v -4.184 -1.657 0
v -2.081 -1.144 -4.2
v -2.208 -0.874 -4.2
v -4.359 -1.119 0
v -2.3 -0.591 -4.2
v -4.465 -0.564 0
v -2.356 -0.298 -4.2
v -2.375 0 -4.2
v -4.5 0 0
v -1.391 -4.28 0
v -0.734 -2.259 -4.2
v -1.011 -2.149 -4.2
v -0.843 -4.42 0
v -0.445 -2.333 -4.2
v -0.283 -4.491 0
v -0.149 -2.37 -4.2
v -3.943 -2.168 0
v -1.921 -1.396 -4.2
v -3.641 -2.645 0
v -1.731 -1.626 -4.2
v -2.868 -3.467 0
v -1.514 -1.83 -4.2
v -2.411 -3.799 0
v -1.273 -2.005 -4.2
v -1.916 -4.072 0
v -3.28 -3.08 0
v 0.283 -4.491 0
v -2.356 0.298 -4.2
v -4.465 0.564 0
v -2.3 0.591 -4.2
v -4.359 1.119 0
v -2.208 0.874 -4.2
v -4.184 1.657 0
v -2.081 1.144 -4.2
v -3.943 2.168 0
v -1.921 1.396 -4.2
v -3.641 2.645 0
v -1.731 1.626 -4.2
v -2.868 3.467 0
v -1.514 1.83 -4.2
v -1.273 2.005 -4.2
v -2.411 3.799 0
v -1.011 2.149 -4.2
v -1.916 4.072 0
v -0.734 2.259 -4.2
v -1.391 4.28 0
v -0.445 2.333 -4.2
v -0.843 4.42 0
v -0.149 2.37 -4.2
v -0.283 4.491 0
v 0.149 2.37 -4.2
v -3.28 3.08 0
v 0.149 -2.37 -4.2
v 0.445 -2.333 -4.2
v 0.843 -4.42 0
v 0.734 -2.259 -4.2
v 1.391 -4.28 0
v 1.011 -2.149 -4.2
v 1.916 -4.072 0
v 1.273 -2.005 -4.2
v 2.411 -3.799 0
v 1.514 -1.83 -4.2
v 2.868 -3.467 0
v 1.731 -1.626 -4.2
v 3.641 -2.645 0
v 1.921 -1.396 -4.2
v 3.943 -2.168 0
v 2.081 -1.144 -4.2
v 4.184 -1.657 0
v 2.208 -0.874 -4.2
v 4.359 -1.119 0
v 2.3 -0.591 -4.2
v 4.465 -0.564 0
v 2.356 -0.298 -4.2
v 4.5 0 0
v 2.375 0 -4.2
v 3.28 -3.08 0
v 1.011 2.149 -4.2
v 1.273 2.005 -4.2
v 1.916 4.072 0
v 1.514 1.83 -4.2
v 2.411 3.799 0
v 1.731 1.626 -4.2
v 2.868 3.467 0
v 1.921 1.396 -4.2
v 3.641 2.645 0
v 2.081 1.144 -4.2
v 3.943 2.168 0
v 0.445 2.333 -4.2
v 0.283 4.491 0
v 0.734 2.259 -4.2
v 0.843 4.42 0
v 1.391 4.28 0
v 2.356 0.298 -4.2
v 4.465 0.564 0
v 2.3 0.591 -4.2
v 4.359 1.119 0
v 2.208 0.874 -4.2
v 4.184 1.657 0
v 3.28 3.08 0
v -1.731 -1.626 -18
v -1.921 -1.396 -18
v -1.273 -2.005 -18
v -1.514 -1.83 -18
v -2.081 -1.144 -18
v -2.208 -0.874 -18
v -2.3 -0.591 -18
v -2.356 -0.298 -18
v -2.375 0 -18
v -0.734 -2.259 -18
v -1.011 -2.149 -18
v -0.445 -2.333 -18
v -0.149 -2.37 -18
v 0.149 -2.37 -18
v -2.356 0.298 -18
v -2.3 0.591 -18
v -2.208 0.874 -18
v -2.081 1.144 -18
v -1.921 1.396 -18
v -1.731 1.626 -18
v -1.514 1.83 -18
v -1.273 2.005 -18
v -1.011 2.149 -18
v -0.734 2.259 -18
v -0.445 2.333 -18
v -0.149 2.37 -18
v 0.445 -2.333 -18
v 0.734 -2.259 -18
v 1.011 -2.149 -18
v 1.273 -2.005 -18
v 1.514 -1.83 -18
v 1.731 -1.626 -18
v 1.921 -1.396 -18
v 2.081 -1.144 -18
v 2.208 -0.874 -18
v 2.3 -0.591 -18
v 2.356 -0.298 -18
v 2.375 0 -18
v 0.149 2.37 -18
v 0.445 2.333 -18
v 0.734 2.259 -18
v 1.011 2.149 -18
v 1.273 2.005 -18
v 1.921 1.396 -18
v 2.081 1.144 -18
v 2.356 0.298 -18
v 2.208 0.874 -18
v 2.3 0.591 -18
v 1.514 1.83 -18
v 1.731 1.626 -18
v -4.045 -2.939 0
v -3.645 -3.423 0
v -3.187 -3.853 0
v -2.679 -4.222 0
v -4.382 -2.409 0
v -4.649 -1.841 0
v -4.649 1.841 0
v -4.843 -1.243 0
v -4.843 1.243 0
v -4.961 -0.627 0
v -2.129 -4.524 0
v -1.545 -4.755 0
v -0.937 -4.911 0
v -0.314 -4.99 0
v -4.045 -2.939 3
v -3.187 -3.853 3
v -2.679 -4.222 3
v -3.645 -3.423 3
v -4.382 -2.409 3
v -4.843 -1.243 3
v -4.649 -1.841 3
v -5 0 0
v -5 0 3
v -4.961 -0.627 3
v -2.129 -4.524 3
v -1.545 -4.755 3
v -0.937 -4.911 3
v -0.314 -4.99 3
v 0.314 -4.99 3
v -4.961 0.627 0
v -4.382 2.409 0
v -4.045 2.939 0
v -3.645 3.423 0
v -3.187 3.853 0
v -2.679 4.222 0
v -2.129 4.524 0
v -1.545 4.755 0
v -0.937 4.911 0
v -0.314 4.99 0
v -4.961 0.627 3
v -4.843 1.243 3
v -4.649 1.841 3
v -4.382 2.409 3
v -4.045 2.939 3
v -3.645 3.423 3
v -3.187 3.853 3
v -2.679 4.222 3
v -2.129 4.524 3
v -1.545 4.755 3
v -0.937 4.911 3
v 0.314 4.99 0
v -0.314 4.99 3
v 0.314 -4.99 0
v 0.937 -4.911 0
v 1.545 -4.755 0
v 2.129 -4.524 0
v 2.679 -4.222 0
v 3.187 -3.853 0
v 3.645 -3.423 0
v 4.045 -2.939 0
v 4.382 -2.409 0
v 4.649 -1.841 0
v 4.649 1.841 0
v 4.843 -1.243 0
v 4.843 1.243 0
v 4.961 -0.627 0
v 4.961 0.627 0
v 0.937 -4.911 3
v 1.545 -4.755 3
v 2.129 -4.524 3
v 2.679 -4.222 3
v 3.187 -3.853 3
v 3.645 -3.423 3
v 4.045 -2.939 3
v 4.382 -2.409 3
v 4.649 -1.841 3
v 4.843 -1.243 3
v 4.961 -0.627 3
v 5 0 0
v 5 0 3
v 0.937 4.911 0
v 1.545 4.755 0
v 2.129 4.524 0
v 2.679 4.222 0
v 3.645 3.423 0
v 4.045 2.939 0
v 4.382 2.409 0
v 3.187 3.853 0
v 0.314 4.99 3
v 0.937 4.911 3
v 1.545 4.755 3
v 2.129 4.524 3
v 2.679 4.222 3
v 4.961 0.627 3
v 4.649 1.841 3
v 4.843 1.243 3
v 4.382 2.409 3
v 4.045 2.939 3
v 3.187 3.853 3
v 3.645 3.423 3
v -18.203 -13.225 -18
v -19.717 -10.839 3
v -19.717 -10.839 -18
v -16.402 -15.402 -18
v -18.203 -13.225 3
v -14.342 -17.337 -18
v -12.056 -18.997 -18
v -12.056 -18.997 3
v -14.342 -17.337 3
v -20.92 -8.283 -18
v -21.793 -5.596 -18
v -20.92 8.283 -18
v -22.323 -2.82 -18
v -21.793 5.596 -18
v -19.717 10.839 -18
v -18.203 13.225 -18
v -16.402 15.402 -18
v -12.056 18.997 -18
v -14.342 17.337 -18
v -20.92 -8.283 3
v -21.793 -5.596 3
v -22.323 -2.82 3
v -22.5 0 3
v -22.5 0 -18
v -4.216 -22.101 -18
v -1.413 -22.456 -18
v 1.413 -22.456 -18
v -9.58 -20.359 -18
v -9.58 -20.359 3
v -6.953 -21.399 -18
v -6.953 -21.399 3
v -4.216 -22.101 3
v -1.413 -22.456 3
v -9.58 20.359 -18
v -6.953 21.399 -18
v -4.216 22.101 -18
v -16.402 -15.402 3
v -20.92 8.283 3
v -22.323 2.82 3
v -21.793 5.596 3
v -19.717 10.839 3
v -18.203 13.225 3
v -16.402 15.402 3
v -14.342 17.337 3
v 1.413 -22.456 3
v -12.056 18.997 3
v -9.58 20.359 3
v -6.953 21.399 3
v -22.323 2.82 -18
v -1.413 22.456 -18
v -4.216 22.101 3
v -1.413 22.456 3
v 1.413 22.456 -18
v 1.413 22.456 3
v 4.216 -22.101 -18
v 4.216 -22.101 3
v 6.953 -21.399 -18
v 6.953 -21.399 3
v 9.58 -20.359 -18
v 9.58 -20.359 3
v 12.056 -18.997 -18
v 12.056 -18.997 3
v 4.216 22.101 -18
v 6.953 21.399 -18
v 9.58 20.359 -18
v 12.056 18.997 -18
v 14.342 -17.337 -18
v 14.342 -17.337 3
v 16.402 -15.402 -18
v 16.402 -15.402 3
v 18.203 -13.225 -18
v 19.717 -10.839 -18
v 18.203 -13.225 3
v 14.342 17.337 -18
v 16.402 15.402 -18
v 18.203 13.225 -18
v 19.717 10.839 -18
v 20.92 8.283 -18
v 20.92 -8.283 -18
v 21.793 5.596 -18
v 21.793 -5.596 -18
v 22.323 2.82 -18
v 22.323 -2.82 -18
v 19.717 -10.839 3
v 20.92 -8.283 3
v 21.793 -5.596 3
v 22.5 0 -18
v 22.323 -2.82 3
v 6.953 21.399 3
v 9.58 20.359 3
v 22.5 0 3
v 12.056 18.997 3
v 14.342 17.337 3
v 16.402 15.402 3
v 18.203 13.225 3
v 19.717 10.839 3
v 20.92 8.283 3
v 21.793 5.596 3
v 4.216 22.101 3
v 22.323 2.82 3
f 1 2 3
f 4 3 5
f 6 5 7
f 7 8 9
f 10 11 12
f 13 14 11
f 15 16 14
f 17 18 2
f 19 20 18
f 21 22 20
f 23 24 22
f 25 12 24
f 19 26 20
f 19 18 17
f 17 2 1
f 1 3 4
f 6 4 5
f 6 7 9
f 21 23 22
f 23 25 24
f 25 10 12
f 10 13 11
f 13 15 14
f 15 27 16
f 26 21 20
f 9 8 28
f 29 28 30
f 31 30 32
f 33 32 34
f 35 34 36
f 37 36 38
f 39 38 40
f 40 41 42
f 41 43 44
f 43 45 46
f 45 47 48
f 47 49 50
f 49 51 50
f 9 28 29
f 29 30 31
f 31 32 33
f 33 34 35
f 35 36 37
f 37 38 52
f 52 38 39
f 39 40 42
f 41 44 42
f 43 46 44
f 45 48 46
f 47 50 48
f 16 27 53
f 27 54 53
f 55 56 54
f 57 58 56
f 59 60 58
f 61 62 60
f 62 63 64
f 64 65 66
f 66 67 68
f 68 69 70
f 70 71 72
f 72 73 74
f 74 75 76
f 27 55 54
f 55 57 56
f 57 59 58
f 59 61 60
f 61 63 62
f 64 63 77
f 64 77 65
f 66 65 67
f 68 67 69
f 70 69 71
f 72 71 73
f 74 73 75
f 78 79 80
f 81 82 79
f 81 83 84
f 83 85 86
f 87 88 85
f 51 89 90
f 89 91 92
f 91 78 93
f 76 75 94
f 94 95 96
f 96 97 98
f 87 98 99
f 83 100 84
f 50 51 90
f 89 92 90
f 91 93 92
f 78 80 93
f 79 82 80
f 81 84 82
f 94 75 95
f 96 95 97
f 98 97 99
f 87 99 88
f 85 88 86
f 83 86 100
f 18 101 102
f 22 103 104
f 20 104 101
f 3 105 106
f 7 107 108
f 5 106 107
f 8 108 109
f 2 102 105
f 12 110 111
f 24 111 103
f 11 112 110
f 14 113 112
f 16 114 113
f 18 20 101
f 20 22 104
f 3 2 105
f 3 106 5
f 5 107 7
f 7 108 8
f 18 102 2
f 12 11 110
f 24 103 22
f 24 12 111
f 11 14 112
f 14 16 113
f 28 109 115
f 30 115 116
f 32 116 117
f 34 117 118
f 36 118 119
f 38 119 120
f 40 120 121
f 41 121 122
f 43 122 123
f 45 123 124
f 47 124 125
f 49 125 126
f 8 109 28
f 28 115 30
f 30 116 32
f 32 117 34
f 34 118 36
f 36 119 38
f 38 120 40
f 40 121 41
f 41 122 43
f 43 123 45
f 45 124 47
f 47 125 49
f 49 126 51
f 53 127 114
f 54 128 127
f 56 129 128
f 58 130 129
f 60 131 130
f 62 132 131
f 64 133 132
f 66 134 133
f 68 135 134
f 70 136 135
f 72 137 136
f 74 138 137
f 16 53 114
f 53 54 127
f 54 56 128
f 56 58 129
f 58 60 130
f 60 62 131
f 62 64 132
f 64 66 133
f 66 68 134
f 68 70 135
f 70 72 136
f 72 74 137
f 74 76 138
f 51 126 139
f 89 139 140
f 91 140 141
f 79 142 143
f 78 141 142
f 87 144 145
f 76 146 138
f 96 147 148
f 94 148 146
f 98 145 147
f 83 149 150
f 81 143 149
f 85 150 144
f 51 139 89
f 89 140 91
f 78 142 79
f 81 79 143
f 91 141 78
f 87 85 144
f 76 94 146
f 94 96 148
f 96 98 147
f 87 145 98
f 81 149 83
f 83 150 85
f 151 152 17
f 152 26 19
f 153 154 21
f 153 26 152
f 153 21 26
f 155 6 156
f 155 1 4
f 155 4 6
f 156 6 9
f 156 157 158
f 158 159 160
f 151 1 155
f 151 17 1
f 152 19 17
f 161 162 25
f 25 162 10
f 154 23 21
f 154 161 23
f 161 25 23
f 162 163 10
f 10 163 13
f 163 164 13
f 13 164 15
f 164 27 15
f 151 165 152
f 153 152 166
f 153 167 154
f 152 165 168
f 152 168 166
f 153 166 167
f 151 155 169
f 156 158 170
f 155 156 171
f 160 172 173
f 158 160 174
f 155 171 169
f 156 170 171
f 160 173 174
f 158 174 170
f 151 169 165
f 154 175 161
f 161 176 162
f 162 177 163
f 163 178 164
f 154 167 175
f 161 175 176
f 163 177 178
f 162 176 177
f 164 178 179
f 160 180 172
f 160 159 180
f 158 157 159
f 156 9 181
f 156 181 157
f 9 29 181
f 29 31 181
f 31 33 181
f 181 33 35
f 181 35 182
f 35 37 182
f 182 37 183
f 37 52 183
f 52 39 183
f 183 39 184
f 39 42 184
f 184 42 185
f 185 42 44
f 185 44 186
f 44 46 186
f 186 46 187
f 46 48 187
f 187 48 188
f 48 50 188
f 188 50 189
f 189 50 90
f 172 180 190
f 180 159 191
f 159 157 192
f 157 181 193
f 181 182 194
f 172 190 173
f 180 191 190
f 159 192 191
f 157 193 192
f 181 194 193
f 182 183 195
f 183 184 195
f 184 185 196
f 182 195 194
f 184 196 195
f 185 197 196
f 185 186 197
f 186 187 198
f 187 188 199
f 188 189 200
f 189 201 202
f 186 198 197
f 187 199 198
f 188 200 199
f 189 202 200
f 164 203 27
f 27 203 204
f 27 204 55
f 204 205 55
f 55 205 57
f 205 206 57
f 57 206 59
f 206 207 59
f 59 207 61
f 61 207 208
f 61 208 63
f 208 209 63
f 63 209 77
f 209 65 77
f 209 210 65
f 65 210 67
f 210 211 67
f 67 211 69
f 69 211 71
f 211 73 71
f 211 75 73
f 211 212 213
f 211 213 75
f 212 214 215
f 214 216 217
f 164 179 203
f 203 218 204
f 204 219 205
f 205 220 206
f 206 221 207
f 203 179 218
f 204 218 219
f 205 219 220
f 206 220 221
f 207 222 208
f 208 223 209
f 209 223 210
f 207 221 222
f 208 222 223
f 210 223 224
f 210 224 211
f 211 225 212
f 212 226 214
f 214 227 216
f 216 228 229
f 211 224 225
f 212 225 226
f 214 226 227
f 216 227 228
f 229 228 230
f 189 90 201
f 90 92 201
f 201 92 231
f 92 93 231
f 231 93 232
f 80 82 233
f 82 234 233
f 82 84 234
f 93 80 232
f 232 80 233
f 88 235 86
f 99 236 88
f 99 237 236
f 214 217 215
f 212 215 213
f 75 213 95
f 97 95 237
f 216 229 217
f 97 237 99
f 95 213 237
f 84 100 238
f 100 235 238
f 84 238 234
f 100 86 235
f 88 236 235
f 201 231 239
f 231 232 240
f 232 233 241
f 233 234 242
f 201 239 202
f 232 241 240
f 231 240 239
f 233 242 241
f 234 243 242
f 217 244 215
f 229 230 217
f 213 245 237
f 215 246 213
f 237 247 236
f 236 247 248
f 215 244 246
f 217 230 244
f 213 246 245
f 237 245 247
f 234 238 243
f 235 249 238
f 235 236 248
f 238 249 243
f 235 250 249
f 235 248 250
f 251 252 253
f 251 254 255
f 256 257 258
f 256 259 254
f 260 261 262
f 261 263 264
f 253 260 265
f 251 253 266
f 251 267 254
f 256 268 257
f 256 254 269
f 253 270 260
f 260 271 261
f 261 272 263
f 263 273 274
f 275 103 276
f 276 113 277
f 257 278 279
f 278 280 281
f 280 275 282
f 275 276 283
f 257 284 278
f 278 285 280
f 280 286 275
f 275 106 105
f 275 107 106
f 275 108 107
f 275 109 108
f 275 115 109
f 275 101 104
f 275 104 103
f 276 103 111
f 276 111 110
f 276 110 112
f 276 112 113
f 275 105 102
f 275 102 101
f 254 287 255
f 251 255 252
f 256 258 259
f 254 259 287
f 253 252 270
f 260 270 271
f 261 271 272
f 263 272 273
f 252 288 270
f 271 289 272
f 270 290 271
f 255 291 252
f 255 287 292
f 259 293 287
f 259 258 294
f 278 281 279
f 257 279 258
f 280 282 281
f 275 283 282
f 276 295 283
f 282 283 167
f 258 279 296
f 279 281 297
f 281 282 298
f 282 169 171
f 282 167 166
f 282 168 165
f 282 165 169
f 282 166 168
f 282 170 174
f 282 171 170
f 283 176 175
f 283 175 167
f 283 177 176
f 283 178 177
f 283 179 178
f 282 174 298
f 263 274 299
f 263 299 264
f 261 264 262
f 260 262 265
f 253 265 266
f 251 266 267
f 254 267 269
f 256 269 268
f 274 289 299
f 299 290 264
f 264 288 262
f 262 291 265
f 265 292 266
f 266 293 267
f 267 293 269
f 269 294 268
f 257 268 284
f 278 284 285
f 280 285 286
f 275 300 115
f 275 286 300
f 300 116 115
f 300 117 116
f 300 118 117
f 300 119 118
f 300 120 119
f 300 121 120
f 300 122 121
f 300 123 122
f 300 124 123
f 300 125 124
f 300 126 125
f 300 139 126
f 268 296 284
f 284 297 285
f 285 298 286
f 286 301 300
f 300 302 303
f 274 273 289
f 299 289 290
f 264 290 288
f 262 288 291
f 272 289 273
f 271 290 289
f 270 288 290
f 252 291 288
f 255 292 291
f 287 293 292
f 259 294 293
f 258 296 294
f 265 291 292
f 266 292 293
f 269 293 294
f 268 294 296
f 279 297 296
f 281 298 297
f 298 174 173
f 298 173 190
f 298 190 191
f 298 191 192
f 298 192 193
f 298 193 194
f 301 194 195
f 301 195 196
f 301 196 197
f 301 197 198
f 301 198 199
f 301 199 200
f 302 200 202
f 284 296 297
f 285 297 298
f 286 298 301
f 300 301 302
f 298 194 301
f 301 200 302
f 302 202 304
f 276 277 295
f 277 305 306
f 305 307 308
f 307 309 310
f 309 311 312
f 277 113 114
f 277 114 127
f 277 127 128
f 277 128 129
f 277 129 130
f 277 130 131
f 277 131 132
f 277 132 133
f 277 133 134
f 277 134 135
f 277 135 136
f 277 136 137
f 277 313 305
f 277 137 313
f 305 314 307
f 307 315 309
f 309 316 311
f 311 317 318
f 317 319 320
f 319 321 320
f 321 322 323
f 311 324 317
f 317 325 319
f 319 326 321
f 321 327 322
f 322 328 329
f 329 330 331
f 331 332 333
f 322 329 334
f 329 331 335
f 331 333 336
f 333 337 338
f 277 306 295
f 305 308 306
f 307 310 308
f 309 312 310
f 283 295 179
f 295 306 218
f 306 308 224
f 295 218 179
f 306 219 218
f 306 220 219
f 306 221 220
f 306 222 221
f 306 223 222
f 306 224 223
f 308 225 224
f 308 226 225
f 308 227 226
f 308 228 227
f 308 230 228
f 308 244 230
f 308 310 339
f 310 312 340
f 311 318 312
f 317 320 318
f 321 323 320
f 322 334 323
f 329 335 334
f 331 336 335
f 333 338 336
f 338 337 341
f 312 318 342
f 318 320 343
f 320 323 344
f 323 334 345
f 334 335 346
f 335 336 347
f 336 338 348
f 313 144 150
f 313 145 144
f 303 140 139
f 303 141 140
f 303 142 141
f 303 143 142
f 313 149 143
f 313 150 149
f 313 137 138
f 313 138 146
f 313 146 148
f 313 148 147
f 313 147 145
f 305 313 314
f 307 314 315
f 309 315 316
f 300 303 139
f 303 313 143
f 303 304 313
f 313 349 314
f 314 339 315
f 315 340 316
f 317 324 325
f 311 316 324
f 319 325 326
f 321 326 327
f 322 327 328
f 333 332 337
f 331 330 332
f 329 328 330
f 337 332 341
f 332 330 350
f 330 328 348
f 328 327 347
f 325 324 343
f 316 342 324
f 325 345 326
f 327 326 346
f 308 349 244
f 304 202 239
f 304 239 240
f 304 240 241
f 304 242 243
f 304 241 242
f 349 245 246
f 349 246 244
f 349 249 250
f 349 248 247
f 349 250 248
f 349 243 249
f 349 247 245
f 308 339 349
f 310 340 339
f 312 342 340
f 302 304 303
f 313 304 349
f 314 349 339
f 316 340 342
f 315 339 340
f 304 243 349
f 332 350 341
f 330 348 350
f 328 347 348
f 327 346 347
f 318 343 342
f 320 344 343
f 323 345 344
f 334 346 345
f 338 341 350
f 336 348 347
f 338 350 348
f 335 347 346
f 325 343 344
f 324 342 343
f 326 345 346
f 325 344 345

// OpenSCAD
$fn = 50;

difference() {
	union() {
		translate(v = [0, 0, -18.0]) {
			cylinder(h = 21, r = 22.5);
		}
	}
	union() {
		translate(v = [0, 0, 0]) {
			rotate(a = [0, 0, 0]) {
				difference() {
					union() {
						translate(v = [0, 0, -21.0]) {
							cylinder(h = 21, r = 2.25);
						}
						translate(v = [0, 0, -4.2]) {
							cylinder(h = 4.2, r1 = 2.375, r2 = 4.5);
						}
						translate(v = [0, 0, -21.0]) {
							cylinder(h = 21, r = 2.375);
						}
						translate(v = [0, 0, -21.0]) {
							cylinder(h = 21, r = 2.25);
						}
					}
					union();
				}
			}
		}
		#cylinder(h = 3, r = 5.0);
	}
}
